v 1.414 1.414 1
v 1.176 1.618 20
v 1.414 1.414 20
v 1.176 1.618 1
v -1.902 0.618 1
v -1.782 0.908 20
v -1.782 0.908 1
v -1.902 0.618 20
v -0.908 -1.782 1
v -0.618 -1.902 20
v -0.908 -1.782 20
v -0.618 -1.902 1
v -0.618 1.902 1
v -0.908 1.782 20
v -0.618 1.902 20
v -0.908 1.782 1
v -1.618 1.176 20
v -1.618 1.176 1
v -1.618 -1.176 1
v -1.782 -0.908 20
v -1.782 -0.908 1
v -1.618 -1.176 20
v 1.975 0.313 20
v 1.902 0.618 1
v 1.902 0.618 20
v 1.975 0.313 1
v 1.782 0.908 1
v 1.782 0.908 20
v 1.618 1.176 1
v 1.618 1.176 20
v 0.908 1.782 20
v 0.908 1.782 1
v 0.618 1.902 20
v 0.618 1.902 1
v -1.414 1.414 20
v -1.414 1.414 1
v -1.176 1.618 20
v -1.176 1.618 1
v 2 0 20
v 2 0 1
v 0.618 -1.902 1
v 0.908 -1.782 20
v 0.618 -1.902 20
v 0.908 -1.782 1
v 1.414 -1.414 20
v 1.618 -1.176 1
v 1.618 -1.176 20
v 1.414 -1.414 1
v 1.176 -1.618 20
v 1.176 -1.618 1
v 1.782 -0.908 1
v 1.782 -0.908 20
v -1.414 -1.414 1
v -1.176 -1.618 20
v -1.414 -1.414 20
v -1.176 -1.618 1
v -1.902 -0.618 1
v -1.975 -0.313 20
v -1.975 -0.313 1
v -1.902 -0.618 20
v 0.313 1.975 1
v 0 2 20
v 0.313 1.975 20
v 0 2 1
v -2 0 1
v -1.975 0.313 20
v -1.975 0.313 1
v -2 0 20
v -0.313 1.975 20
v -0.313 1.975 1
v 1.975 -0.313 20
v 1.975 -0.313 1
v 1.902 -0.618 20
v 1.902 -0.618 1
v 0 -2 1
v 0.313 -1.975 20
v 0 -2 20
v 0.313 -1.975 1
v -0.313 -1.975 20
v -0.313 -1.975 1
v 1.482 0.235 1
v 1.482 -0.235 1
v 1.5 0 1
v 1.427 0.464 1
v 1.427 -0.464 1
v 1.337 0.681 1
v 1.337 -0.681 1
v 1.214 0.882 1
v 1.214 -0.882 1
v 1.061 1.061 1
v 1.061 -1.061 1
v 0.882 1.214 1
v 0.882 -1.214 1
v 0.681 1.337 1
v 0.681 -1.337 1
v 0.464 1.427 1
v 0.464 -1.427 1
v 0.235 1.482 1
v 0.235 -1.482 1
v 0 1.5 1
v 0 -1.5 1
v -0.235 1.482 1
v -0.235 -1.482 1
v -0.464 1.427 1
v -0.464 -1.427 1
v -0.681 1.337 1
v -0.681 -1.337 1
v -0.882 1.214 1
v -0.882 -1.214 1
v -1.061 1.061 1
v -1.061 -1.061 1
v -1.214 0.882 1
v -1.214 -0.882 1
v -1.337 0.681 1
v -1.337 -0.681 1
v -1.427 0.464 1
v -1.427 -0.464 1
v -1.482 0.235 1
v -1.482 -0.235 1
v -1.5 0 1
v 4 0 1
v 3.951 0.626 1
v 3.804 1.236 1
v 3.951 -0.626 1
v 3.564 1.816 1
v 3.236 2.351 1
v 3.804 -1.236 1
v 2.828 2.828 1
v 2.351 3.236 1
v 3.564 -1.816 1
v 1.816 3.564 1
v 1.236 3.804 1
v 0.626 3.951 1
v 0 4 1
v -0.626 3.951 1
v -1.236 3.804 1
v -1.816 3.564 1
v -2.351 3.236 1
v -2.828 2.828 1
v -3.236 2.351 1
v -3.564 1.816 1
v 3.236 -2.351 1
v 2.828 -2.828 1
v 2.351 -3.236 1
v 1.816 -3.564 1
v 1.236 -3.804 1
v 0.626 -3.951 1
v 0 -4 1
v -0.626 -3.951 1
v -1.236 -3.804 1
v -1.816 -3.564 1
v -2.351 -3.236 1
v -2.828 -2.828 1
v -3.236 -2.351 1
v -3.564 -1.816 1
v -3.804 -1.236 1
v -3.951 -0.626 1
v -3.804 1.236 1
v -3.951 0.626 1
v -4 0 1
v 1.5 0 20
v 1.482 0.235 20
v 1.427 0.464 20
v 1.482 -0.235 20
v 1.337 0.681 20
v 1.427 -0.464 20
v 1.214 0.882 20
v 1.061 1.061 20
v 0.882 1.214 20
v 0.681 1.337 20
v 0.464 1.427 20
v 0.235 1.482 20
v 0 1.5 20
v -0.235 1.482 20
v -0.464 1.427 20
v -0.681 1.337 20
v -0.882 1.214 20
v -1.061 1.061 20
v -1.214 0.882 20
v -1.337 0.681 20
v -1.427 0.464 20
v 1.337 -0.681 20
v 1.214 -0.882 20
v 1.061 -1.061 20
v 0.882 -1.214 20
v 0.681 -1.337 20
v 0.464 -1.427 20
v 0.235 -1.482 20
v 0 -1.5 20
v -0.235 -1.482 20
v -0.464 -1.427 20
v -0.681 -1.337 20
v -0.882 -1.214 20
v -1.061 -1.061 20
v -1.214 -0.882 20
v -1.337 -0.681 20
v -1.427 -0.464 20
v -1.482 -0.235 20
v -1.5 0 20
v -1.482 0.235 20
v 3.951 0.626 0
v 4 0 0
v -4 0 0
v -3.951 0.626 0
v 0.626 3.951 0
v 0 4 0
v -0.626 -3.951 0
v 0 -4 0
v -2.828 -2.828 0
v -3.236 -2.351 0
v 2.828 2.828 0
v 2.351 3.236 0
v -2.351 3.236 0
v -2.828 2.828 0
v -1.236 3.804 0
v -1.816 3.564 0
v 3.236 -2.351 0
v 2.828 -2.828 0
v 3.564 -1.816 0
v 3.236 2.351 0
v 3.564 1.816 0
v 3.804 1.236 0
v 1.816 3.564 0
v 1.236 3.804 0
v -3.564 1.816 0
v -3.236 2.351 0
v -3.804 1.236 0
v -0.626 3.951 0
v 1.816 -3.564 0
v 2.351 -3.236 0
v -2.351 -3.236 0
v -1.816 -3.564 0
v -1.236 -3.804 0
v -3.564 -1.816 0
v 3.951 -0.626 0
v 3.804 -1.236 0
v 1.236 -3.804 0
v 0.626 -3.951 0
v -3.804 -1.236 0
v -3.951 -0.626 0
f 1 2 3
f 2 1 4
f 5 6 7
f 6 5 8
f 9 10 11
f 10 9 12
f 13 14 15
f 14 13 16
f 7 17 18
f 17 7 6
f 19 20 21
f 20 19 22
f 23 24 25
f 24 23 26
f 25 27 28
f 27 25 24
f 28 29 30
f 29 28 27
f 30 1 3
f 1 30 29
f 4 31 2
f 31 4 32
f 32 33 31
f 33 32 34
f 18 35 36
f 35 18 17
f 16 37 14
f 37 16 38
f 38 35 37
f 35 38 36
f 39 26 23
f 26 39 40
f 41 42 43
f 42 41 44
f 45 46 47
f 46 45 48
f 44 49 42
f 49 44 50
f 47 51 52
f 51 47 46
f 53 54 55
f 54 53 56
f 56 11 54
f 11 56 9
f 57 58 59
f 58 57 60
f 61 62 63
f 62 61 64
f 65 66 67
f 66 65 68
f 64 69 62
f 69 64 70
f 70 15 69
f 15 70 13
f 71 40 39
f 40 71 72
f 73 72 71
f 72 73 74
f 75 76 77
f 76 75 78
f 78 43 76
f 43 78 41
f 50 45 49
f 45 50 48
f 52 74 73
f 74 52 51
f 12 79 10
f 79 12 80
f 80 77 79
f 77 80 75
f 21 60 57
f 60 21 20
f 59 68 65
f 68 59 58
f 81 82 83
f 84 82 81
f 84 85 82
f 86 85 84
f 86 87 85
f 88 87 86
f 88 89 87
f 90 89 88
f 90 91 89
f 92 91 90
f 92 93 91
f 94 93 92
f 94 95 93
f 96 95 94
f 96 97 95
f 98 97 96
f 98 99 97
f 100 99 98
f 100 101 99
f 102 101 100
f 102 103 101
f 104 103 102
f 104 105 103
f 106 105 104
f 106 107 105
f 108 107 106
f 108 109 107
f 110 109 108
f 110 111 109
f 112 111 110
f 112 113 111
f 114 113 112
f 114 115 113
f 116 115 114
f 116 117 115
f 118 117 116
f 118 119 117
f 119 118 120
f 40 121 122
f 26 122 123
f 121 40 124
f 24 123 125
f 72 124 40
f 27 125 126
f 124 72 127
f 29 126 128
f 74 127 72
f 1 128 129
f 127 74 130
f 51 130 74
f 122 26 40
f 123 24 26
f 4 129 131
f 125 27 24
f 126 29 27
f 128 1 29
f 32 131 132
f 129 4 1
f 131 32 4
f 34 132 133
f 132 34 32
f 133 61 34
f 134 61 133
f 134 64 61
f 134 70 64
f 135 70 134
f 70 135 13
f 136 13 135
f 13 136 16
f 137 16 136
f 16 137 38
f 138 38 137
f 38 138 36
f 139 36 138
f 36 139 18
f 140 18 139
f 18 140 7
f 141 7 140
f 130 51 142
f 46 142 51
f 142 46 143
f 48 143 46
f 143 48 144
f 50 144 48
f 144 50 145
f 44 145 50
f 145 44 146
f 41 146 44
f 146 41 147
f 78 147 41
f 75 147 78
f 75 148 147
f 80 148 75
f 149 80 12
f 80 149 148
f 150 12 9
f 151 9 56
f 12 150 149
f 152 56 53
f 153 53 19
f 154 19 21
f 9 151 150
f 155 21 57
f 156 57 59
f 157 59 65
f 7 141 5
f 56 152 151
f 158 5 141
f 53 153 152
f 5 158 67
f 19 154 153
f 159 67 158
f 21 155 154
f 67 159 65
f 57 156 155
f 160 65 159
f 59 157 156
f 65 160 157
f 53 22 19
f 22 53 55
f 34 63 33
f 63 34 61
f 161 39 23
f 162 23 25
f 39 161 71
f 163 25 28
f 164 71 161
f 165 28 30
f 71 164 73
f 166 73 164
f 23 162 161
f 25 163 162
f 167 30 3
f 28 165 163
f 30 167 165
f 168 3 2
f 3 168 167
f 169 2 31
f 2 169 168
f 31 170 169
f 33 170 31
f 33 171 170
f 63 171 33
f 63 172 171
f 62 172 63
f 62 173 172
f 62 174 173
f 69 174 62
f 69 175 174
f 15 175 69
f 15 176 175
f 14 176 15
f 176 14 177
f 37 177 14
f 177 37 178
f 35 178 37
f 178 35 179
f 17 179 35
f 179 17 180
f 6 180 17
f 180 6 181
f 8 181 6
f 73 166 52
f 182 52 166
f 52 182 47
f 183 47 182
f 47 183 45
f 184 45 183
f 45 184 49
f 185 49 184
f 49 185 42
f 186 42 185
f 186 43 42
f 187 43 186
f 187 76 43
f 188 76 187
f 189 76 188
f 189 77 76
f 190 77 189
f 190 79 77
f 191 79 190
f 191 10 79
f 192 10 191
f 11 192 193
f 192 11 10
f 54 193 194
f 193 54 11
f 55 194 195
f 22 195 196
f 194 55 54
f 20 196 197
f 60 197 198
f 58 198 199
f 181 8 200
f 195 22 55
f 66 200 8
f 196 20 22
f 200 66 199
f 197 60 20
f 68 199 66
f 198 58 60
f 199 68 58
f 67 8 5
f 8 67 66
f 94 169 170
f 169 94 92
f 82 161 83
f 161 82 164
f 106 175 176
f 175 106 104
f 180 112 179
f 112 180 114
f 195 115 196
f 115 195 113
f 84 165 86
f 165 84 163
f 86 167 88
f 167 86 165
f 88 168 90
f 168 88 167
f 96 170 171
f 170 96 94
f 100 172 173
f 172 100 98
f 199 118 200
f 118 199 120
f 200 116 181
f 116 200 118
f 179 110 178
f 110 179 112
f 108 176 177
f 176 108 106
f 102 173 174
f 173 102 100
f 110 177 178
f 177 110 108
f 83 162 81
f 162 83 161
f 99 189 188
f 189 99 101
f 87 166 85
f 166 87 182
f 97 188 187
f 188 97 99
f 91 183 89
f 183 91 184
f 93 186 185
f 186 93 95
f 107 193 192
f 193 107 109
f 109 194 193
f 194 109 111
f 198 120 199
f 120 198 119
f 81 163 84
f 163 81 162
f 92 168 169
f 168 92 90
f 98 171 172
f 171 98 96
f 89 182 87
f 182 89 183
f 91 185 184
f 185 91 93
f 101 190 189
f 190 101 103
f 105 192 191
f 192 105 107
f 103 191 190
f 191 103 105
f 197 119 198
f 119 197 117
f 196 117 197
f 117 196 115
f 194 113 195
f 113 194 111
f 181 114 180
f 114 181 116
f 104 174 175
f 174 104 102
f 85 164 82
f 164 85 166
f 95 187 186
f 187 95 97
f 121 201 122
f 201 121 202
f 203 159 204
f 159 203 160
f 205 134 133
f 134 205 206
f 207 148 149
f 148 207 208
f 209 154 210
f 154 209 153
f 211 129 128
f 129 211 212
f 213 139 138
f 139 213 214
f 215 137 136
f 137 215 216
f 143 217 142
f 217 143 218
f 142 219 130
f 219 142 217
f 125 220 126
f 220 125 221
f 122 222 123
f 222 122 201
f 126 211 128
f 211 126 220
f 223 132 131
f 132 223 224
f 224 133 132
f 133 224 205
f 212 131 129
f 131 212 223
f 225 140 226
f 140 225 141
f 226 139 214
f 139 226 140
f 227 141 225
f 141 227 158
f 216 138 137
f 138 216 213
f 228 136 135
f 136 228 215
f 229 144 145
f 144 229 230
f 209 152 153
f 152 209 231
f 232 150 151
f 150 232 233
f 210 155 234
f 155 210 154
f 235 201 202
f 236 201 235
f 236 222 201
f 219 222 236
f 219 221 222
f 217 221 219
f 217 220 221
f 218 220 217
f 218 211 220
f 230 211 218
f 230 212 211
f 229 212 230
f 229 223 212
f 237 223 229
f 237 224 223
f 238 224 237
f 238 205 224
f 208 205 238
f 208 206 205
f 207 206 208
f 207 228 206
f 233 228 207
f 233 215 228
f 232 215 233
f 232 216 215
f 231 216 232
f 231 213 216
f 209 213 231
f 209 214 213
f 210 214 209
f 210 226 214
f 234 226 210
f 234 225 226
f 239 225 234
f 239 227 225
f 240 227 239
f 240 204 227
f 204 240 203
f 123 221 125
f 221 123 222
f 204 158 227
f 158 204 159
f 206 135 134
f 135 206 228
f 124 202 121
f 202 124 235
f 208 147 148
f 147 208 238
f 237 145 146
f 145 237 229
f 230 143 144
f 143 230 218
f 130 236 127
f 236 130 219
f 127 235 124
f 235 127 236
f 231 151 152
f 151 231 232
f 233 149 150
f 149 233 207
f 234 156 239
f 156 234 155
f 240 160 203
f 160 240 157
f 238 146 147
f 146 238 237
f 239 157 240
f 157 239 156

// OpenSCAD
height = 20;
head_rad = 8 / 2;
head_height = 1;
neck_rad = 4 / 2;
hole_rad = 3 / 2;
$fn = 40;

// Head, laying flat.
cylinder(h = head_height, r = head_rad);
translate([0, 0, head_height])
{
    // Neck.
    difference()
    {
        cylinder(h = height - head_height, r = neck_rad);
        cylinder(h = height - head_height, r = hole_rad);
    }
}
